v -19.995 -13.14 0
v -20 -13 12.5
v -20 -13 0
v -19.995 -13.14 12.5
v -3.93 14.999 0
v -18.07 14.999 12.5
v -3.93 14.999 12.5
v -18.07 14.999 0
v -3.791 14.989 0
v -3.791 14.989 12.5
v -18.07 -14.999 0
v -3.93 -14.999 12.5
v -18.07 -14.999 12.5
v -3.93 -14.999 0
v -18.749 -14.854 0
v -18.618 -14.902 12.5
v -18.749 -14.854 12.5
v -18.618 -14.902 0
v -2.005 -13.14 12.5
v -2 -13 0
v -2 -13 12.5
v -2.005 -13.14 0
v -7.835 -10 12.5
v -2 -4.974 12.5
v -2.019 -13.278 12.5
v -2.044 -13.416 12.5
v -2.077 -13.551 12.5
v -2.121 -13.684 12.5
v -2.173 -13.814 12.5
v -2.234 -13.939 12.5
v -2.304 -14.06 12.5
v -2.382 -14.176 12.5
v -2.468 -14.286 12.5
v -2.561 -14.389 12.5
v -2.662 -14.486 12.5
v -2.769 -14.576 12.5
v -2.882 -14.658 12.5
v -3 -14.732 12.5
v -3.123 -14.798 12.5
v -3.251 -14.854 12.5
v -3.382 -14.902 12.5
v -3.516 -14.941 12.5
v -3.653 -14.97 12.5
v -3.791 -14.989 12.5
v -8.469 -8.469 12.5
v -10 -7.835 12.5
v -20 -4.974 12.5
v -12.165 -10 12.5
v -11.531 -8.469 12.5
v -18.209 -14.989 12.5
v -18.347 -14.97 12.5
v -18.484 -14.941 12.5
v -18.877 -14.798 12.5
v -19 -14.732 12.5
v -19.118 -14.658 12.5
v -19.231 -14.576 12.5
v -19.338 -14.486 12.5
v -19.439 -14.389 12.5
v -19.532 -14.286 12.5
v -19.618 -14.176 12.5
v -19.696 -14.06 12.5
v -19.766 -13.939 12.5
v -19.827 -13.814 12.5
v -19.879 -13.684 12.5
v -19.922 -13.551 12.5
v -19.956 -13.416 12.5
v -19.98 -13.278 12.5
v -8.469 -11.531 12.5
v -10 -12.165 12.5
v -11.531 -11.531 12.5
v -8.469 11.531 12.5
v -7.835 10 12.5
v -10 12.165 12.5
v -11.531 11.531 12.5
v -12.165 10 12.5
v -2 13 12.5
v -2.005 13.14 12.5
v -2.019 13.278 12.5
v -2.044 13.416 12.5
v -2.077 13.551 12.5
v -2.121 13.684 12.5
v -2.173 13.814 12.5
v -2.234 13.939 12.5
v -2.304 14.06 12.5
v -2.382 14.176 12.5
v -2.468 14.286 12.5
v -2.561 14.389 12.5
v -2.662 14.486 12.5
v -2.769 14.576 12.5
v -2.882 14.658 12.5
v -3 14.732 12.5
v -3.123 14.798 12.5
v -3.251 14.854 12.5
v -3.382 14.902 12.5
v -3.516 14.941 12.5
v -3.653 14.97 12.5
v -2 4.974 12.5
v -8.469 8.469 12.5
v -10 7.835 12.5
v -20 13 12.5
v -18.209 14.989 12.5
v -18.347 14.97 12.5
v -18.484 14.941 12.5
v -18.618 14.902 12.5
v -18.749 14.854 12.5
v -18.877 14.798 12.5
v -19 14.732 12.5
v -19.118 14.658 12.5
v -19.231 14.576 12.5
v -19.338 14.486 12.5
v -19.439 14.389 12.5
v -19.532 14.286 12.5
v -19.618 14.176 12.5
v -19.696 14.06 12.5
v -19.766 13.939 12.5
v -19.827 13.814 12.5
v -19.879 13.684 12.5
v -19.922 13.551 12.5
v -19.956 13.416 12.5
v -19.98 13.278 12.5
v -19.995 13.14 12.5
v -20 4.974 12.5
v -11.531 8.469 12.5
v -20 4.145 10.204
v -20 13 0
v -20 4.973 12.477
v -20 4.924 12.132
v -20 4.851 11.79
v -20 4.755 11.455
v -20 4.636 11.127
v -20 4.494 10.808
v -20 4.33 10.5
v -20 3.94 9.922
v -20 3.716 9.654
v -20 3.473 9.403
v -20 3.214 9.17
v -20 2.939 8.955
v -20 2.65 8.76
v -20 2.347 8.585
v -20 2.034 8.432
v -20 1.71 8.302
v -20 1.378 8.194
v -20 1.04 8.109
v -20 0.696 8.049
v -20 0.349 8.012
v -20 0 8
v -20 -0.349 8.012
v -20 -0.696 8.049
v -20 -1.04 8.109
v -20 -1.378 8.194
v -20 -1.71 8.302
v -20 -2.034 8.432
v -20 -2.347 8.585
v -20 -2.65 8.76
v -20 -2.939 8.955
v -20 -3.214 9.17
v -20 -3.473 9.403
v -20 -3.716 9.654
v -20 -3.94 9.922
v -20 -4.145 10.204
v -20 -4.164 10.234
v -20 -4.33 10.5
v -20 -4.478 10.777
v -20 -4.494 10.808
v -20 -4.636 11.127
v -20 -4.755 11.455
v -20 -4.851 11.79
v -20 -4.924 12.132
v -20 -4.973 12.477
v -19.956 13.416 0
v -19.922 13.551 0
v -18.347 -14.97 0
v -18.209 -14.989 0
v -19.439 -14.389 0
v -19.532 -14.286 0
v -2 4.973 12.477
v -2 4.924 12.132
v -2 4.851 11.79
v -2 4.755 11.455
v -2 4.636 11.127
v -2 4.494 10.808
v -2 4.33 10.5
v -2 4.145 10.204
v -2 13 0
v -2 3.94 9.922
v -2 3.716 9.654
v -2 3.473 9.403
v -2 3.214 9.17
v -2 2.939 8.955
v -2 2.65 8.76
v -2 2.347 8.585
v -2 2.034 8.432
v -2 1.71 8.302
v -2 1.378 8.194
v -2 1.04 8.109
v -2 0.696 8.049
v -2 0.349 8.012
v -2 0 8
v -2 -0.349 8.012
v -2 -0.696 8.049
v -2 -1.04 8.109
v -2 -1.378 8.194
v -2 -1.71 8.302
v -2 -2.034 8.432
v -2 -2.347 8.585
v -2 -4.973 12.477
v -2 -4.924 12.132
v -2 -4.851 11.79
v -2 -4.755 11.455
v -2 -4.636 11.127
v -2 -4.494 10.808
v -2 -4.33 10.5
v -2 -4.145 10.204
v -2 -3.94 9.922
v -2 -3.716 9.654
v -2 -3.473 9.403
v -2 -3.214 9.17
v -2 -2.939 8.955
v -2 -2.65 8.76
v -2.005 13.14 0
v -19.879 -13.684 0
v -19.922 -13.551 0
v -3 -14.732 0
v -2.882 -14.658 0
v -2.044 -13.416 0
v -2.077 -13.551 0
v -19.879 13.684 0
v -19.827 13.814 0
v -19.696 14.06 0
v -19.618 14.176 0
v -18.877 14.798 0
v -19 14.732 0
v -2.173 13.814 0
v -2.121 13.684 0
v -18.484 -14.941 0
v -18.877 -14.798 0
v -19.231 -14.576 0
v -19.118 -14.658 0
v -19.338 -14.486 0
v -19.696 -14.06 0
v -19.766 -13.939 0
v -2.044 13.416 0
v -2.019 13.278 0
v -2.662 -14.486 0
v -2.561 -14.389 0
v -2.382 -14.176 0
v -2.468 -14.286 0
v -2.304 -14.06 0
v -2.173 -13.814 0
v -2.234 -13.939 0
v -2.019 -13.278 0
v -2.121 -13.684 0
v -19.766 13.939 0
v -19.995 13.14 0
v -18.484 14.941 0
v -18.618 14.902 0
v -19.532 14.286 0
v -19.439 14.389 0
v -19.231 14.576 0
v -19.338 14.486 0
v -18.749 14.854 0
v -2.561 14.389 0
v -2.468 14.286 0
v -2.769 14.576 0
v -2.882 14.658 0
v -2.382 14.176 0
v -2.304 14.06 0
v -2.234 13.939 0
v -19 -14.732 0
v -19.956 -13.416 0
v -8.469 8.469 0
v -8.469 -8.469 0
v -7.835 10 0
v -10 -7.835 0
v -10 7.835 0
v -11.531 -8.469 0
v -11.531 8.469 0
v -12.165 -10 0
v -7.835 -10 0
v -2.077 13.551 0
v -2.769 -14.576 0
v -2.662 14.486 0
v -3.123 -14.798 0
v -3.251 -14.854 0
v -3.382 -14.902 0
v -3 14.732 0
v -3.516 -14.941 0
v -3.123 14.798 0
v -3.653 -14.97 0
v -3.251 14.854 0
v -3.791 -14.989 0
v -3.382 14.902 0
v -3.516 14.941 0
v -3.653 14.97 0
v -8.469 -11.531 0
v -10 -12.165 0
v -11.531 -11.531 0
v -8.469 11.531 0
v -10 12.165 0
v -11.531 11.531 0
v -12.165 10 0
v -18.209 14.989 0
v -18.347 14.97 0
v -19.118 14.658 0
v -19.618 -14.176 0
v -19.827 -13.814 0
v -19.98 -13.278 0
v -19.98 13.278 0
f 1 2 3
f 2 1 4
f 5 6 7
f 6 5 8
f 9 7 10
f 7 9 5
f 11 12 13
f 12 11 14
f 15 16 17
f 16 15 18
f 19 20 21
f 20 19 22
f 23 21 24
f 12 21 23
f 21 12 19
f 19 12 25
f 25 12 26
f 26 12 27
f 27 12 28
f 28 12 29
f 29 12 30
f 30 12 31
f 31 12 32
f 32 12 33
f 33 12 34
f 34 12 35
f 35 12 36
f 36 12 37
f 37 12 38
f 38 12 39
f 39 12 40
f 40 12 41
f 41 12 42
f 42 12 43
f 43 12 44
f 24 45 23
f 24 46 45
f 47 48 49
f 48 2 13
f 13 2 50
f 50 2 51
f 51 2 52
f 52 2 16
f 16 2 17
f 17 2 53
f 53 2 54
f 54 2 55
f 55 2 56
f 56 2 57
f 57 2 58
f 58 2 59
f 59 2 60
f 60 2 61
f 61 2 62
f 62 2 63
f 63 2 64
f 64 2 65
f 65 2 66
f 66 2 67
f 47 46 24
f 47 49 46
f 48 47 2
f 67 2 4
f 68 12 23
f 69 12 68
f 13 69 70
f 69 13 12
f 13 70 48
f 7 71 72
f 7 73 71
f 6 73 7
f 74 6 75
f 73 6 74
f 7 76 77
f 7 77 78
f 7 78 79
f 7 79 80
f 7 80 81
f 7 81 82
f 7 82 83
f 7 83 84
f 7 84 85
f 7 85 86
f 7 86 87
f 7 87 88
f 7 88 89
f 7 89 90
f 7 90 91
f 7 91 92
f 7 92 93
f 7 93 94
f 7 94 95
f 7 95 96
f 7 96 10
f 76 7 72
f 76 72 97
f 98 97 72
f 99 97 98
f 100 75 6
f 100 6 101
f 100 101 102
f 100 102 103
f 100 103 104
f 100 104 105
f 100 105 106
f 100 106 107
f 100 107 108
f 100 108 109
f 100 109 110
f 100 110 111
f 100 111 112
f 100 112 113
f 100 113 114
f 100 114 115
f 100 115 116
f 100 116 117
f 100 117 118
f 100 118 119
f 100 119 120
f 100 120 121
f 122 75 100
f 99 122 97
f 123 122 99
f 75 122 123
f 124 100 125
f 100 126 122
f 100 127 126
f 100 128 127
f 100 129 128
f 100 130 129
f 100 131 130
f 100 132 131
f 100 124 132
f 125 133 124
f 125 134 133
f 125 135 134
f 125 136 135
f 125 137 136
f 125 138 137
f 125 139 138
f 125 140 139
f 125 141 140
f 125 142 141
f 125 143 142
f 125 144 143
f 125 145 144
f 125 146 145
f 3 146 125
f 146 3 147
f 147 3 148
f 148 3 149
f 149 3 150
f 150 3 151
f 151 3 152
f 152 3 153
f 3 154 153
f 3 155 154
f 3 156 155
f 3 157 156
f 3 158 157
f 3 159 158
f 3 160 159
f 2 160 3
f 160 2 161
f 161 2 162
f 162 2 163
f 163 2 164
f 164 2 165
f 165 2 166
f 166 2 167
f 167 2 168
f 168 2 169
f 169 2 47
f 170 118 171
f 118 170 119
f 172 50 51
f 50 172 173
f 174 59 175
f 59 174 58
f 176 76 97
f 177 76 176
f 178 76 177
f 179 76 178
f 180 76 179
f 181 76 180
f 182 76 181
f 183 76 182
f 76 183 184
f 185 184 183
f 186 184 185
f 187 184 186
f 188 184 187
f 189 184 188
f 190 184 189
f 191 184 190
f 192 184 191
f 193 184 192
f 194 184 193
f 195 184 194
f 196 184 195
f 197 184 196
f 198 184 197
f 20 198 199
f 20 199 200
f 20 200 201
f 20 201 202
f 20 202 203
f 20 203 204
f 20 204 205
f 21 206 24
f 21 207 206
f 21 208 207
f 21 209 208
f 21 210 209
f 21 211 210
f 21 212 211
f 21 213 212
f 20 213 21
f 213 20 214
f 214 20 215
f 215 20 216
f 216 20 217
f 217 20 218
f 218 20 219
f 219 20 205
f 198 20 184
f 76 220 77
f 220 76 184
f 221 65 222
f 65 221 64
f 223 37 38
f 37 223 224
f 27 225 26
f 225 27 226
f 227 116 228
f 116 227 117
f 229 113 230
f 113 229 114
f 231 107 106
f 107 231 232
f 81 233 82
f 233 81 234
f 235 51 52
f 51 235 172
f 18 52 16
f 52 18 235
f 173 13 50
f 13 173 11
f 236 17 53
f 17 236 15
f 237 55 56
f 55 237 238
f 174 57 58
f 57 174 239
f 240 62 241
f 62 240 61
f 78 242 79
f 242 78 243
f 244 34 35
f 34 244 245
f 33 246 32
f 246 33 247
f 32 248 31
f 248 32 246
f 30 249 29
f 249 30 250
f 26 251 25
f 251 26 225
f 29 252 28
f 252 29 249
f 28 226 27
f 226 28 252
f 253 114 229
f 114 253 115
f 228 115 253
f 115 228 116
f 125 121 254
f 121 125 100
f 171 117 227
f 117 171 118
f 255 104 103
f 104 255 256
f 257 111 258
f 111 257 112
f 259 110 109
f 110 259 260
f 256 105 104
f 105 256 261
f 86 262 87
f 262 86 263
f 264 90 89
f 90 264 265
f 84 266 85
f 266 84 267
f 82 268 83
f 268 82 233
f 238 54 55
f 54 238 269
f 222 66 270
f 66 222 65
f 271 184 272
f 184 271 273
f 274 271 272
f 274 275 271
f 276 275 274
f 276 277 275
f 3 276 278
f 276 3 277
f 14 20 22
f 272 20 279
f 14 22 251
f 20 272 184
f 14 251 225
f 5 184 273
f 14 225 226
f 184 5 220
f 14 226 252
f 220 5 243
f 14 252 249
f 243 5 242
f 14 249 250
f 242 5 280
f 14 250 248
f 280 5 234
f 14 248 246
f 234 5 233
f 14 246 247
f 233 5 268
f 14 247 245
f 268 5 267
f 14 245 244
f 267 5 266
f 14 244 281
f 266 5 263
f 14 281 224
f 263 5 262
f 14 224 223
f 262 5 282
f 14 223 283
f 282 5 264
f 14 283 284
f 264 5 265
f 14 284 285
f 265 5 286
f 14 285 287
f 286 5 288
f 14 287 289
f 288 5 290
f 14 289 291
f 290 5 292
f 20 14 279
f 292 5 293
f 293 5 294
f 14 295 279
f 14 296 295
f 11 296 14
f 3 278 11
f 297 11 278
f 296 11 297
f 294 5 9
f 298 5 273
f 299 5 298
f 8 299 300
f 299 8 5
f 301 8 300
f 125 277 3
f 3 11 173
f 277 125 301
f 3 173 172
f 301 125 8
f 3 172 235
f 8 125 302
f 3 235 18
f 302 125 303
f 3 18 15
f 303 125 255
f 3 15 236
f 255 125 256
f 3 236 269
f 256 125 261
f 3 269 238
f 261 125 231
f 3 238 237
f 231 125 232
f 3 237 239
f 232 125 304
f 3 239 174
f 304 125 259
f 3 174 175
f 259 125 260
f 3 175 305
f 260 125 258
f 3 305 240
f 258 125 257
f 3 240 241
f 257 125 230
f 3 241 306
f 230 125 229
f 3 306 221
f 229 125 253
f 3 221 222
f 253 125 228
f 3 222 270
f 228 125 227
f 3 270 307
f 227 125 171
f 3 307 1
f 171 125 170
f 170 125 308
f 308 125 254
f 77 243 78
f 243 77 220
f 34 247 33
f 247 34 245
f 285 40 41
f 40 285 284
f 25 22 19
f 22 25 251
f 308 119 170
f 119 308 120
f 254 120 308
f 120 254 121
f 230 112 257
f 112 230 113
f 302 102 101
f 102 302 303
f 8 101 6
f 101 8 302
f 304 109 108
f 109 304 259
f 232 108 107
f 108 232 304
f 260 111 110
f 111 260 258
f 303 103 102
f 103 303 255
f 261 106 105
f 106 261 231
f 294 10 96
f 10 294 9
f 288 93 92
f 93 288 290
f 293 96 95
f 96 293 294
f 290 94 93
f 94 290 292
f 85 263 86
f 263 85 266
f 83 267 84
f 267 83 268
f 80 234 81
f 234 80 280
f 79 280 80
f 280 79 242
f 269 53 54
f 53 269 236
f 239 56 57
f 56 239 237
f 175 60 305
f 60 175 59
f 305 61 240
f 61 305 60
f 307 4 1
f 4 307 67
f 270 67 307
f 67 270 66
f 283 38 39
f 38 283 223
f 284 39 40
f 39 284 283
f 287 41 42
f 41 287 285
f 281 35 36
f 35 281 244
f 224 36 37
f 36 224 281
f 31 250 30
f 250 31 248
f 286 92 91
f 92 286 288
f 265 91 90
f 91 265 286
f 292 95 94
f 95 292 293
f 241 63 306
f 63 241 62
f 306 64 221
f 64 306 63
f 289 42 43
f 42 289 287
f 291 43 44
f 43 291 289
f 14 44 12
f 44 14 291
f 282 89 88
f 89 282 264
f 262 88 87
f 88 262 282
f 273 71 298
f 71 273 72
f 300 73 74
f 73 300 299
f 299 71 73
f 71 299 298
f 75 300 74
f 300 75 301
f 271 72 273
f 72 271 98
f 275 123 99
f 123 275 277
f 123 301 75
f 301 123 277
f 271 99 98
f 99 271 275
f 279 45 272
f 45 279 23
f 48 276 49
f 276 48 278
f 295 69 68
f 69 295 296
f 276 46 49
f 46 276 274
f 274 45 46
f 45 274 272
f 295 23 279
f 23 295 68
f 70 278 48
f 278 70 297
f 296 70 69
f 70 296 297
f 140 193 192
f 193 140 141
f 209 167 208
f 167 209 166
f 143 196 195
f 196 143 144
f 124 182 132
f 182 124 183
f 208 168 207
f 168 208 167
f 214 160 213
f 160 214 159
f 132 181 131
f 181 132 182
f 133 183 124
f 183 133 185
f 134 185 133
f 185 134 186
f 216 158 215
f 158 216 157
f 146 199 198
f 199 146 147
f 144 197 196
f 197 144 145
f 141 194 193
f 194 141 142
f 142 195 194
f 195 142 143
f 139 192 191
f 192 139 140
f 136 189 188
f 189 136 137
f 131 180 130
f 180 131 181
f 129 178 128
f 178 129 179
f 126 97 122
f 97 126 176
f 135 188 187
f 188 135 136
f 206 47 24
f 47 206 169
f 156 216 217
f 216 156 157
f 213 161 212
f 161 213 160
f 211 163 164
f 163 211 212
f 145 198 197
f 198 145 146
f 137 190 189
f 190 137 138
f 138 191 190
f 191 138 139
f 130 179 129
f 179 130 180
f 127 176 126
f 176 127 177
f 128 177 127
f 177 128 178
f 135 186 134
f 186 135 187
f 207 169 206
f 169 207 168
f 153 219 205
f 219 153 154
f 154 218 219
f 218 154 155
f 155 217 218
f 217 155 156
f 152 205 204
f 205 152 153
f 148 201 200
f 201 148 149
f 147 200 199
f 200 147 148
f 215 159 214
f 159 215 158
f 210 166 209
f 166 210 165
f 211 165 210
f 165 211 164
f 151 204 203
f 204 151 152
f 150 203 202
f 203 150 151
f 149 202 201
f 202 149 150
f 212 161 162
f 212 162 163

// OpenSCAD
// file: polyhole.scad
// The Cylinder is dead! Long live the Cylinder!
// A module for a polyhole by radius, based on Nophead's work.

module polyhole(h, r, cent = false)
{
    n = max(round(4 * r), 3);
    cylinder(h = h, r = r / cos(180 / n), $fn = n, center = cent);
}
// main file
// Clamp used for y and z rods
// Uses 30mm m4 bolts

use<polyhole.scad>

Clamp();

module Clamp()
{
    difference()
    {
        hull()
        {
            translate([-18, -13, 0])
                cylinder(h = 8+4.5, r = 2, $fn = 90);
            translate([-4, -13, 0])
                cylinder(h = 8+4.5, r = 2, $fn = 90);
            translate([-18, 13, 0])
                cylinder(h = 8+4.5, r = 2, $fn = 90);
            translate([-4, 13, 0])
                cylinder(h = 8+4.5, r = 2, $fn = 90);
        }
        translate([-10, 10, 0])
            polyhole(8+4.5, 2);
        translate([-10, -10, 0])
            polyhole(8+4.5, 2);
        translate([-2, 0, 8+5])
            rotate([0, -90, 0])
                cylinder(h = 20, r = 5, $fn = 90);
    }
}
